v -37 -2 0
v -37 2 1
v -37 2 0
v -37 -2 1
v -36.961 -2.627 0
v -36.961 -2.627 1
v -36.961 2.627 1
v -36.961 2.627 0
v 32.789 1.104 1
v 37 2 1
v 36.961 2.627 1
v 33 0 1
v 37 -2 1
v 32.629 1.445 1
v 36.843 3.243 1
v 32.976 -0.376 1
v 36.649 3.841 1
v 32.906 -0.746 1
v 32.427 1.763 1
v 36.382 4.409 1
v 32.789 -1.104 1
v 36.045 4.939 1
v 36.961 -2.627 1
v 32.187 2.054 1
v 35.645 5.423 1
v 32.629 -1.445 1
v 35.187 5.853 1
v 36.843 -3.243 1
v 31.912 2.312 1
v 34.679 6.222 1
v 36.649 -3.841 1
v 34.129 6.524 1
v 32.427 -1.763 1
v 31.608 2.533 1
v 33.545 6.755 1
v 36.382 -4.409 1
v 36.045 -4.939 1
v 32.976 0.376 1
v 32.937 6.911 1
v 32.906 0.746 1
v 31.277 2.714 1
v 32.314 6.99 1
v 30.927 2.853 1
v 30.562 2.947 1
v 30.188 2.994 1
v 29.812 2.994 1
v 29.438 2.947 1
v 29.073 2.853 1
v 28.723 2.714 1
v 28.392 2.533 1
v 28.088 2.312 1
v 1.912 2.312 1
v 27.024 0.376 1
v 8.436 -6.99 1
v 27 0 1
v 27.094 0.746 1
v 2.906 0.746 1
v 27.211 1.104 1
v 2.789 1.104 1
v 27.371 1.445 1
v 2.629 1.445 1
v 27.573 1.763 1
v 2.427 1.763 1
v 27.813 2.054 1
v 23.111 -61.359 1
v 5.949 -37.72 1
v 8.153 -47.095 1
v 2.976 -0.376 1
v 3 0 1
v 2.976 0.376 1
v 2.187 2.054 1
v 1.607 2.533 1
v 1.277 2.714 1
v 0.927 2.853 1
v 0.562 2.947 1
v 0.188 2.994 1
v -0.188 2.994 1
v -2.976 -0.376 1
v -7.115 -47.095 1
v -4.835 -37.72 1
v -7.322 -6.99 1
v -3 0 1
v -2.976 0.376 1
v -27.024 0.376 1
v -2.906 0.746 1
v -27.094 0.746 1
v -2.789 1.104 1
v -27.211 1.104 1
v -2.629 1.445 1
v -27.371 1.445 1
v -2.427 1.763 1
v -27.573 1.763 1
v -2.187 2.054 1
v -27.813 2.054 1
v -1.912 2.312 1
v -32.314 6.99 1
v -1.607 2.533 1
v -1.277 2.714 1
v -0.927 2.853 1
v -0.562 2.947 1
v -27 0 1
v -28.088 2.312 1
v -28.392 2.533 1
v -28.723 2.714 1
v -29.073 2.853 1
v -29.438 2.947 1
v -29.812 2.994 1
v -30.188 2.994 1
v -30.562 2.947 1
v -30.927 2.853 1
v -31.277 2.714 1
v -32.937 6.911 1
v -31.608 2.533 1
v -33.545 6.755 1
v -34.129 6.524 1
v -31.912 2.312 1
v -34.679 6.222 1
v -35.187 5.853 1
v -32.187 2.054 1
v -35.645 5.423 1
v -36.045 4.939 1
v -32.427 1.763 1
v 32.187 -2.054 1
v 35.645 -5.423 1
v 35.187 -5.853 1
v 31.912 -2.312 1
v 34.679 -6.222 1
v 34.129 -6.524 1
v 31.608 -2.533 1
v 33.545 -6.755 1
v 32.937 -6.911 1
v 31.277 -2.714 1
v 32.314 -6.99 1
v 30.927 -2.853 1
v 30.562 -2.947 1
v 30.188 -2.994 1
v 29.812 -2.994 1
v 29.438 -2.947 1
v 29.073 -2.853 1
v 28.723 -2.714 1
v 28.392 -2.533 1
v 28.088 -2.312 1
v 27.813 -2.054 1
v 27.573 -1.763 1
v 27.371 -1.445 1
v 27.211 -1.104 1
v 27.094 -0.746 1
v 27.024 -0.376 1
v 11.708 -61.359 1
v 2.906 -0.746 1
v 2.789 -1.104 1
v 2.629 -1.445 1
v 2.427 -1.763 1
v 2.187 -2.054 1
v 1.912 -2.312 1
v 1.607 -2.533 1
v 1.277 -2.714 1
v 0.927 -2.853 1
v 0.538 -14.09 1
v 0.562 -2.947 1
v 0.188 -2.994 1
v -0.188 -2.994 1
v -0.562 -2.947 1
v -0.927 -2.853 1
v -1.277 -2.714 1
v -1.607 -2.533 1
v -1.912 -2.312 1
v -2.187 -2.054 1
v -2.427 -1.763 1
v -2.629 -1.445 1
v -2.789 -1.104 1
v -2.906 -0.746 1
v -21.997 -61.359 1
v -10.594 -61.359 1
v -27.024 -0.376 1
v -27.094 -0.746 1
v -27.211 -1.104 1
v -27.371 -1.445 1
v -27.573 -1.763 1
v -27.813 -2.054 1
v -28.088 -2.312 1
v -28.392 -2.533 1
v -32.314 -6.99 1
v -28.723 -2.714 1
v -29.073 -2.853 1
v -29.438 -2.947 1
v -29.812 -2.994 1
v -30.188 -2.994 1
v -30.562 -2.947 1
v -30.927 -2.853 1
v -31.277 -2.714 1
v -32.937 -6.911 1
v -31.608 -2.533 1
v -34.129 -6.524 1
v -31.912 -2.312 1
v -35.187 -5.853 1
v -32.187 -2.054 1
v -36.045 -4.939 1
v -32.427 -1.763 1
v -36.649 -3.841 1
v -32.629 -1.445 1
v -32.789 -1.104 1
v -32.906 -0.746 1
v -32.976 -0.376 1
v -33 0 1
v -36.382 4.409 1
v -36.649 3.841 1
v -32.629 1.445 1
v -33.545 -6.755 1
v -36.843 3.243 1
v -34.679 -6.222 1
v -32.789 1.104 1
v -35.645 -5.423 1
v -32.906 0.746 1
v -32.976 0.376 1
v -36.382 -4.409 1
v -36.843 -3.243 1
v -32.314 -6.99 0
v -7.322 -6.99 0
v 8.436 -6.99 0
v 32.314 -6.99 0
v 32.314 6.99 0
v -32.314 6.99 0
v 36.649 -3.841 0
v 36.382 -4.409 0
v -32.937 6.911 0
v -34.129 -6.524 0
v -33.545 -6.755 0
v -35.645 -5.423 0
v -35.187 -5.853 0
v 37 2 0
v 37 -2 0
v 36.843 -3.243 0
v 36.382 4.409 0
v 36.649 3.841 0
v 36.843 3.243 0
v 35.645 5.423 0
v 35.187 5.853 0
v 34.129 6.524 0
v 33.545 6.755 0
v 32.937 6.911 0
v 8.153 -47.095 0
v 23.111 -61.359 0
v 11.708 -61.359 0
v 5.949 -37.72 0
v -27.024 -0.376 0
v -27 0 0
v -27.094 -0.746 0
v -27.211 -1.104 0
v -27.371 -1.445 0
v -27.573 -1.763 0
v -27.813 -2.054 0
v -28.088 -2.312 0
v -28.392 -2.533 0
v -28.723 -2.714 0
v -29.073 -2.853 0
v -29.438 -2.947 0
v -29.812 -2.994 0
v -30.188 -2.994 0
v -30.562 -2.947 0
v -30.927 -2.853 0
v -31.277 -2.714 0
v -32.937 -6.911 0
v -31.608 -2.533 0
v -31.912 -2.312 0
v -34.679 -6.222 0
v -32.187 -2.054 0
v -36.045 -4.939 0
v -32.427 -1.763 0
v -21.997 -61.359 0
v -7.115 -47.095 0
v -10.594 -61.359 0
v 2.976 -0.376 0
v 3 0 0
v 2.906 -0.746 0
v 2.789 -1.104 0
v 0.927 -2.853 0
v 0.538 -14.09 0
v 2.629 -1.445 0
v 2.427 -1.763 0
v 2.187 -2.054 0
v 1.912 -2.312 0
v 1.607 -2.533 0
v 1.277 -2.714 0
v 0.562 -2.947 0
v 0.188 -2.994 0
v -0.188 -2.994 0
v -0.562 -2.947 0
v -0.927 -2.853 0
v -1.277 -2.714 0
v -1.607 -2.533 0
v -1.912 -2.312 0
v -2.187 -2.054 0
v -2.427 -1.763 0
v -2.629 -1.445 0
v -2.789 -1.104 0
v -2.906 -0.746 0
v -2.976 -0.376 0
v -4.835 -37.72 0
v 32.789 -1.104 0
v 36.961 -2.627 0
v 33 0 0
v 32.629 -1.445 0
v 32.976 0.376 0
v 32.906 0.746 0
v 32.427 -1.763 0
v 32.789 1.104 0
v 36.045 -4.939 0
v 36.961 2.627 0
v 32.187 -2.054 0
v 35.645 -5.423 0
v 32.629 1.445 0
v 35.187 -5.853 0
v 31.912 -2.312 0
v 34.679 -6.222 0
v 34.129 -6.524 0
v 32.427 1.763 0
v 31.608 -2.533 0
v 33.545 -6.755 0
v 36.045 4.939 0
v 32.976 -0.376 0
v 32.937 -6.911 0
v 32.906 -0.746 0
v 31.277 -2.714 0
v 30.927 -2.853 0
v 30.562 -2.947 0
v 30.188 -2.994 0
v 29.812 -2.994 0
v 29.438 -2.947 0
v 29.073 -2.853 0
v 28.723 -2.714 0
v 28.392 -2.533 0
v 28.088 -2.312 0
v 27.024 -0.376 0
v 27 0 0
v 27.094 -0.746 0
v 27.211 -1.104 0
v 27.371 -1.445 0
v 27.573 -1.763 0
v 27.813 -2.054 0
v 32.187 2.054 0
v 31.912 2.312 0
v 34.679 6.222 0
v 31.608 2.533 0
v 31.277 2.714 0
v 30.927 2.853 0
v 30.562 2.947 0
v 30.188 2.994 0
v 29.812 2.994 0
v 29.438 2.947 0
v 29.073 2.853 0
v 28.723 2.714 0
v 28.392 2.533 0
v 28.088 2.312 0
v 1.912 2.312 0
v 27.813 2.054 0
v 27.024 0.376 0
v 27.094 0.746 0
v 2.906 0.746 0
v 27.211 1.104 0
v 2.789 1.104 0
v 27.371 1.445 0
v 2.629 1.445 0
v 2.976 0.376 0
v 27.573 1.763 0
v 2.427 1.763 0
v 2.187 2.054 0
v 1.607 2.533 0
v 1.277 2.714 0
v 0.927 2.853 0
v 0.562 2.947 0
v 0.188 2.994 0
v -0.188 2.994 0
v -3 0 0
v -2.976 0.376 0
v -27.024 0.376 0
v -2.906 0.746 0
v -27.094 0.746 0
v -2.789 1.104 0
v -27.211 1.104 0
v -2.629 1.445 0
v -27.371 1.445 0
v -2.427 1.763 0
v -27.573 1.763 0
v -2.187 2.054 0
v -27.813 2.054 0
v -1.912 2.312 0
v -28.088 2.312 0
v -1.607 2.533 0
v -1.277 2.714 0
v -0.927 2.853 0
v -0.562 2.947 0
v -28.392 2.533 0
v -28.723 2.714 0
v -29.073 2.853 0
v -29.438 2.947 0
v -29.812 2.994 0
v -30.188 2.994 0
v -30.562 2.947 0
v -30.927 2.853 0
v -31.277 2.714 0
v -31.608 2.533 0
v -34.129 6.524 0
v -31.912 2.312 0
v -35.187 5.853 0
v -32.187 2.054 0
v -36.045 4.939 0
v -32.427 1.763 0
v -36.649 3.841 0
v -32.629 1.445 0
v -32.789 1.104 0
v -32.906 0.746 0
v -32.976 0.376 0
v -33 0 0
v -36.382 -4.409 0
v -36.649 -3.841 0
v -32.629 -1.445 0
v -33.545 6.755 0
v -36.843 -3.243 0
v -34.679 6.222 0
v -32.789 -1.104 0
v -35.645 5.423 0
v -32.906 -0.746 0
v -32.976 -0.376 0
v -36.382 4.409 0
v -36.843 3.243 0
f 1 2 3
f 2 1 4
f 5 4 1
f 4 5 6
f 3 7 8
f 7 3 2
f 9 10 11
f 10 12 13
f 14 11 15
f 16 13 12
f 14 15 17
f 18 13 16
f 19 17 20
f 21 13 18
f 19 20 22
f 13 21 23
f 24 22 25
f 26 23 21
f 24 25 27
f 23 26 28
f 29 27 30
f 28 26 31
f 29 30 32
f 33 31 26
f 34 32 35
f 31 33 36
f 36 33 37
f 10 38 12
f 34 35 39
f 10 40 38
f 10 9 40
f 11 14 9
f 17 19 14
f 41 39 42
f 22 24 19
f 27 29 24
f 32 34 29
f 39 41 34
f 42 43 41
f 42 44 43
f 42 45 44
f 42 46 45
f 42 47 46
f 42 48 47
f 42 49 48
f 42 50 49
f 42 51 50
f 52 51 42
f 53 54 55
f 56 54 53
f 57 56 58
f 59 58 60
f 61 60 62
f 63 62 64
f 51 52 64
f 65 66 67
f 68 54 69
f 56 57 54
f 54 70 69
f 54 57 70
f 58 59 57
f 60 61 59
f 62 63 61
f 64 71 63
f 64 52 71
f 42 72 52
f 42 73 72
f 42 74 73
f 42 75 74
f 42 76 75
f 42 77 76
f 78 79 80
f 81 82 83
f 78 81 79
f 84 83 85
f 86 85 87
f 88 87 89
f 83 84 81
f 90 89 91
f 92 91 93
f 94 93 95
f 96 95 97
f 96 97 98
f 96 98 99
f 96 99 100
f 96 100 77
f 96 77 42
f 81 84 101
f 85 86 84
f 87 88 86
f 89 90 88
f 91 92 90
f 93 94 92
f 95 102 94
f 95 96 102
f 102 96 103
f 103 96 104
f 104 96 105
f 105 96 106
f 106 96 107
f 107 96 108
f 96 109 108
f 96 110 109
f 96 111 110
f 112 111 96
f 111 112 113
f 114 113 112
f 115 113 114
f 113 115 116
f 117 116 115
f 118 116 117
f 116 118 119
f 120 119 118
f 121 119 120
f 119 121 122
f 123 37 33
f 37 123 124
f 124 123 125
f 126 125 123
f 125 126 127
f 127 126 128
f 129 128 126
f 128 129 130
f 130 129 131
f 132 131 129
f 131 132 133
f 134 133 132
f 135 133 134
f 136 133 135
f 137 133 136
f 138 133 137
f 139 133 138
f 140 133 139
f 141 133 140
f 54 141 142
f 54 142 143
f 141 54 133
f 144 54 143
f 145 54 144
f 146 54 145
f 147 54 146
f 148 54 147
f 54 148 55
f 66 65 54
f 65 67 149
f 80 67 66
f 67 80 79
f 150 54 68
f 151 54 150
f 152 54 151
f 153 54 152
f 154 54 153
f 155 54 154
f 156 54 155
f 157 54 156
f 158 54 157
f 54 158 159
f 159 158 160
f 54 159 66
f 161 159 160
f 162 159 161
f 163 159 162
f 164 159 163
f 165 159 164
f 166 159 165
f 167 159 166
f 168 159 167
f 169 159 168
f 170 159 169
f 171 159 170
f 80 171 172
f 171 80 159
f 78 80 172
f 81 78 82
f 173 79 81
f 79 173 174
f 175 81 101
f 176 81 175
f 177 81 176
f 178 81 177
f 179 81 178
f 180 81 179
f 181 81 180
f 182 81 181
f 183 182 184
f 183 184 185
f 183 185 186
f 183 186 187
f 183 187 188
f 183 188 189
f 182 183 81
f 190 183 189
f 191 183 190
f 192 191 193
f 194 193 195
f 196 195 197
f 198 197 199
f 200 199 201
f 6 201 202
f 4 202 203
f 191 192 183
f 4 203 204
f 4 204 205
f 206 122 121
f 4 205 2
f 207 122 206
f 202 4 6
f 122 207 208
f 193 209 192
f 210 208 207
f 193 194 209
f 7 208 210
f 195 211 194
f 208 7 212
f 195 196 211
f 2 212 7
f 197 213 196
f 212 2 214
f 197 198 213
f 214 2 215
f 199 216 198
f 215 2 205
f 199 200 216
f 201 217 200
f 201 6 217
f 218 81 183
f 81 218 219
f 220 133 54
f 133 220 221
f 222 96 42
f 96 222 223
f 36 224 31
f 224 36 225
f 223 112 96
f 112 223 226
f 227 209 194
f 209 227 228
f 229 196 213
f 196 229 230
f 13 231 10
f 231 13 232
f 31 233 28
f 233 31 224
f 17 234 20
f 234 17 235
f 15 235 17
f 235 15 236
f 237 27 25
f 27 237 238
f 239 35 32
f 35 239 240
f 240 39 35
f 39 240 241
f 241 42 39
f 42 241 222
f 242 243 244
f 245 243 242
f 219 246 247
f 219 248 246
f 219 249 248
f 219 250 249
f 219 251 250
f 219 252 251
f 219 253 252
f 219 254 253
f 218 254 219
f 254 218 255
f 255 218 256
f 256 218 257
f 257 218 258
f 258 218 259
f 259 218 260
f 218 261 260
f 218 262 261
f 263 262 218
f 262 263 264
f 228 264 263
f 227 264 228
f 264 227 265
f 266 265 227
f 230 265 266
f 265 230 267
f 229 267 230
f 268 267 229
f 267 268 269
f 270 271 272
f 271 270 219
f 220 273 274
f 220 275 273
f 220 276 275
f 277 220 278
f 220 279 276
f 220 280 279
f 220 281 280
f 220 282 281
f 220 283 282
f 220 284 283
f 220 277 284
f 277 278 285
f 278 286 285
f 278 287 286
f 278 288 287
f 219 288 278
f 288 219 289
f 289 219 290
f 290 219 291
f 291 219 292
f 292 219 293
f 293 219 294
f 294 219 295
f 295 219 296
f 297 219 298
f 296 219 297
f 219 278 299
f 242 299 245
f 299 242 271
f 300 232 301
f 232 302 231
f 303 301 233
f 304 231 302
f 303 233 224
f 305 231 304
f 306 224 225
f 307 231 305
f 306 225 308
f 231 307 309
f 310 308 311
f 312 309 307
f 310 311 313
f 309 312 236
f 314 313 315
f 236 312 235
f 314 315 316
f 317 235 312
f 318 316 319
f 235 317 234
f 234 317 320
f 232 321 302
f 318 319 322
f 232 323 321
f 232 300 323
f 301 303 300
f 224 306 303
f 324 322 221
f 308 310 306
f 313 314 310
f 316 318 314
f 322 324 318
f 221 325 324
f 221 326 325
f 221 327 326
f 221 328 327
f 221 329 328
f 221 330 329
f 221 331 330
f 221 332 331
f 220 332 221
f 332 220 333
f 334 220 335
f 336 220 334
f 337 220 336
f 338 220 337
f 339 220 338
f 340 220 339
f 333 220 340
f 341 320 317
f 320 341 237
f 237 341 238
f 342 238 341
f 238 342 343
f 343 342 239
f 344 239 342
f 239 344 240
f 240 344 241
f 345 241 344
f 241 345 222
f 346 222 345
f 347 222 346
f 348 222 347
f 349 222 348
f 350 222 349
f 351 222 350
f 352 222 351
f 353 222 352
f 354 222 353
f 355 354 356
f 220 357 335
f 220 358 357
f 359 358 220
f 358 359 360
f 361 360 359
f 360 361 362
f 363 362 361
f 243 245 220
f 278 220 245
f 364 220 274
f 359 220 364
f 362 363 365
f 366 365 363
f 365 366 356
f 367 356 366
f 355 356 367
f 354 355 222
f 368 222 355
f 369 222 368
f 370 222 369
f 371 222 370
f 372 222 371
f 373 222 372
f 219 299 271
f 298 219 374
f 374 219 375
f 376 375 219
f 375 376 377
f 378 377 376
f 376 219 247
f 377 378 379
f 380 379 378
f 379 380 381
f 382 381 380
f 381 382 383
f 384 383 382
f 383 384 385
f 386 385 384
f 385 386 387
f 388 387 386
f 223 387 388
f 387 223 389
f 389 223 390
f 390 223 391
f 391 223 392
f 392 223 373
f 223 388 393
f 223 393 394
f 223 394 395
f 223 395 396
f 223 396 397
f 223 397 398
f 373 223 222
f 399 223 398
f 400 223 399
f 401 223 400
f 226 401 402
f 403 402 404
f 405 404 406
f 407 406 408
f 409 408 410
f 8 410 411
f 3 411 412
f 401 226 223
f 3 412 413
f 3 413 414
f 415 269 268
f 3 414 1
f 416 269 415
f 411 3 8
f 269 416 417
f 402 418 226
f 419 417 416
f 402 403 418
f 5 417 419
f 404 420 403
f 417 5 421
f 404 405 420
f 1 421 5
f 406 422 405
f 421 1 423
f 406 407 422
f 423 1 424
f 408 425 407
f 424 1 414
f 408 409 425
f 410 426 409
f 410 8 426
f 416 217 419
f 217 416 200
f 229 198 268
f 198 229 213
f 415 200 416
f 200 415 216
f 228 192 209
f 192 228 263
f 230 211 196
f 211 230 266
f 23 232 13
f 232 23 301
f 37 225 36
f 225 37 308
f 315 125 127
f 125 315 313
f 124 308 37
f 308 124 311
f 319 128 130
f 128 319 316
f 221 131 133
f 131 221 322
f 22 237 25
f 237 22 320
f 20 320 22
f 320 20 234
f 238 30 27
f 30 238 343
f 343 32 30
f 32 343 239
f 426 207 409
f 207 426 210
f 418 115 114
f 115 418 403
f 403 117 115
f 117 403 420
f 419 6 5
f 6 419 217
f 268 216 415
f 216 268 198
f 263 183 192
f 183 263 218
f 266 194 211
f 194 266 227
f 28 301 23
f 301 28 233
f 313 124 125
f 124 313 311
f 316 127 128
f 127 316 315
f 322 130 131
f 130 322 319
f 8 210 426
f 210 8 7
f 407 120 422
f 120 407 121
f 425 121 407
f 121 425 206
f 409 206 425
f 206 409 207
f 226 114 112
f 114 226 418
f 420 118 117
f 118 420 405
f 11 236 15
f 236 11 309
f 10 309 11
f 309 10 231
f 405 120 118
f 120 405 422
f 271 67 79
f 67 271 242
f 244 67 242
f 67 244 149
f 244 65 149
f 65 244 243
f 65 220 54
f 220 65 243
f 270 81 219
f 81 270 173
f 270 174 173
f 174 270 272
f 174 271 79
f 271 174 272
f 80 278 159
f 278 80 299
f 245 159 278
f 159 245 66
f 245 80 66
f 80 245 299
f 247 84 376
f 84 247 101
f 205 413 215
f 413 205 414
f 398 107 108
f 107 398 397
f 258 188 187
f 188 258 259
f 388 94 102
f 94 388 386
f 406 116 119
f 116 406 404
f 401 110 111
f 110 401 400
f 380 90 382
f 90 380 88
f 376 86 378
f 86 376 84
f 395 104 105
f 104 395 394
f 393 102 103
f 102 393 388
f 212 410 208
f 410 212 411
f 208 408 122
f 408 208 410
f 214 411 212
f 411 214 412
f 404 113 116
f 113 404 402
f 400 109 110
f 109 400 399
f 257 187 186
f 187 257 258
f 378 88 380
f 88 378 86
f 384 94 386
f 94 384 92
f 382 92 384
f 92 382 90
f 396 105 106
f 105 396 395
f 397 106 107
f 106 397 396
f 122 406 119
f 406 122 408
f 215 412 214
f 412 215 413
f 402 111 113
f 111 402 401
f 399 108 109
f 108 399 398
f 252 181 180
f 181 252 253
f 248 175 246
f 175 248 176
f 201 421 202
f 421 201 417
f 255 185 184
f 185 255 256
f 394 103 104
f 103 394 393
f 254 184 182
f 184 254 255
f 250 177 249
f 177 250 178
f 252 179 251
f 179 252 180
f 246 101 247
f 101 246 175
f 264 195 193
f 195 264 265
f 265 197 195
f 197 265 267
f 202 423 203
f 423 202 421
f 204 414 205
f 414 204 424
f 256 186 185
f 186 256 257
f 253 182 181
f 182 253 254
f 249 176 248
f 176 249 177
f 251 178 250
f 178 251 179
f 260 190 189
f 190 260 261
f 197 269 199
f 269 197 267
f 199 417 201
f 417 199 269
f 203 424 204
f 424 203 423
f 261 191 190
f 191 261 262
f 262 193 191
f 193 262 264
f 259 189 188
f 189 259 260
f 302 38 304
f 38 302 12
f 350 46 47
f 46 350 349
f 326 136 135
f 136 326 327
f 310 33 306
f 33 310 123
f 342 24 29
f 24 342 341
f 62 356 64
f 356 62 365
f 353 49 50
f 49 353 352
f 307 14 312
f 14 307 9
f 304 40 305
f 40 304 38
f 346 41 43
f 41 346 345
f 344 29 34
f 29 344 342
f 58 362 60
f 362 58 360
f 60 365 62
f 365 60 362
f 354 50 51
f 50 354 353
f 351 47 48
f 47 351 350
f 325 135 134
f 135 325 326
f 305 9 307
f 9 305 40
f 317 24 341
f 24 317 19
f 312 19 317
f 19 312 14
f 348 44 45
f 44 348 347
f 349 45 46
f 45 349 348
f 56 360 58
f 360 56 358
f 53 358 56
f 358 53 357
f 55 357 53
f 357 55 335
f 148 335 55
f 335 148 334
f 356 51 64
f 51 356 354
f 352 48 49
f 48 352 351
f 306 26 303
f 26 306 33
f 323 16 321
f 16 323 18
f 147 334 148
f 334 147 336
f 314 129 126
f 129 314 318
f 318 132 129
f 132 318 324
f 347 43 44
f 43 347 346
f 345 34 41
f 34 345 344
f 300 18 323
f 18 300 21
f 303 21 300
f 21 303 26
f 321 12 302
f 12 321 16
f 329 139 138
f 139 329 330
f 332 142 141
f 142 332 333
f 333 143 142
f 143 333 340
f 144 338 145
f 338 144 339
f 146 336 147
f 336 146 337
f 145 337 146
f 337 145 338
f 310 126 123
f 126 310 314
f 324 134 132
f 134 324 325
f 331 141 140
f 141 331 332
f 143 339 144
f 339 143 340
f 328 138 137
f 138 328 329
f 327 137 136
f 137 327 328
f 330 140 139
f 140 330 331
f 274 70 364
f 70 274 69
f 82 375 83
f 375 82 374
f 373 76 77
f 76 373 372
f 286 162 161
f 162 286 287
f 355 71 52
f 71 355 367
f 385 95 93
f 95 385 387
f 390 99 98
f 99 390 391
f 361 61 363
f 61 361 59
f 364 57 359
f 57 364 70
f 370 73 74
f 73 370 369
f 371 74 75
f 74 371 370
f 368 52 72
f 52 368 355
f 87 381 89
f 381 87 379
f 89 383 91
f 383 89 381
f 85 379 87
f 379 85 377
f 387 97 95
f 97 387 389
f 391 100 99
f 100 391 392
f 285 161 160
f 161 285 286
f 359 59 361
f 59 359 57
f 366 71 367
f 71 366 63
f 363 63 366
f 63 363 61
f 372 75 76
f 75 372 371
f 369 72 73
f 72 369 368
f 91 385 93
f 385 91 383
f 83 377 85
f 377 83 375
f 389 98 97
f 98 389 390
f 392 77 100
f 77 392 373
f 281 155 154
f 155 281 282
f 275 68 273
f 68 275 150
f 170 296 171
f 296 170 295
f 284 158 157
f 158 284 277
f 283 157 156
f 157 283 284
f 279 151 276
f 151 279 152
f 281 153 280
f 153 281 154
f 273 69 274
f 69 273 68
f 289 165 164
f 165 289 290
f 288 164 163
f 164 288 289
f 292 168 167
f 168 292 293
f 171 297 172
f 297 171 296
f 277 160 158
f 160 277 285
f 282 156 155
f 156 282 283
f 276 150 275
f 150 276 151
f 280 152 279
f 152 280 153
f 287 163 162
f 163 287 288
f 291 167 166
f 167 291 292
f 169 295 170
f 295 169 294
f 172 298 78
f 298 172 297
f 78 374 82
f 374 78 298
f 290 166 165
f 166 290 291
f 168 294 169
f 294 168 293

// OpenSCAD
$fn = 50;


difference() {
	union() {
		translate(v = [0, 0, 0]) {
			rotate(a = [0, 0, 0]) {
				hull() {
					translate(v = [-32.0000000000, 2.0000000000, 0]) {
						rotate(a = [0, 0, 0]) {
							translate(v = [0, 0, 0]) {
								rotate(a = [0, 0, 0]) {
									cylinder(h = 1, r = 5);
								}
							}
						}
					}
					translate(v = [32.0000000000, 2.0000000000, 0]) {
						rotate(a = [0, 0, 0]) {
							translate(v = [0, 0, 0]) {
								rotate(a = [0, 0, 0]) {
									cylinder(h = 1, r = 5);
								}
							}
						}
					}
					translate(v = [-32.0000000000, -2.0000000000, 0]) {
						rotate(a = [0, 0, 0]) {
							translate(v = [0, 0, 0]) {
								rotate(a = [0, 0, 0]) {
									cylinder(h = 1, r = 5);
								}
							}
						}
					}
					translate(v = [32.0000000000, -2.0000000000, 0]) {
						rotate(a = [0, 0, 0]) {
							translate(v = [0, 0, 0]) {
								rotate(a = [0, 0, 0]) {
									cylinder(h = 1, r = 5);
								}
							}
						}
					}
				}
			}
		}
		translate(v = [0, -5, 0]) {
			rotate(a = [0, 0, 0]) {
				linear_extrude(height = 1) {
					text(font = "DejaVu Sans Mono:style=Bold", halign = "center", size = 57.0000000000, text = "A", valign = "top");
				}
			}
		}
	}
	union() {
		translate(v = [-30.0000000000, 0.0000000000, -125.0000000000]) {
			rotate(a = [0, 0, 0]) {
				cylinder(h = 250, r = 3.0000000000);
			}
		}
		translate(v = [30.0000000000, 0.0000000000, -125.0000000000]) {
			rotate(a = [0, 0, 0]) {
				cylinder(h = 250, r = 3.0000000000);
			}
		}
		translate(v = [30.0000000000, 0.0000000000, -125.0000000000]) {
			rotate(a = [0, 0, 0]) {
				cylinder(h = 250, r = 3.0000000000);
			}
		}
		translate(v = [0, 0, -125.0000000000]) {
			rotate(a = [0, 0, 0]) {
				cylinder(h = 250, r = 3.0000000000);
			}
		}
	}
}
